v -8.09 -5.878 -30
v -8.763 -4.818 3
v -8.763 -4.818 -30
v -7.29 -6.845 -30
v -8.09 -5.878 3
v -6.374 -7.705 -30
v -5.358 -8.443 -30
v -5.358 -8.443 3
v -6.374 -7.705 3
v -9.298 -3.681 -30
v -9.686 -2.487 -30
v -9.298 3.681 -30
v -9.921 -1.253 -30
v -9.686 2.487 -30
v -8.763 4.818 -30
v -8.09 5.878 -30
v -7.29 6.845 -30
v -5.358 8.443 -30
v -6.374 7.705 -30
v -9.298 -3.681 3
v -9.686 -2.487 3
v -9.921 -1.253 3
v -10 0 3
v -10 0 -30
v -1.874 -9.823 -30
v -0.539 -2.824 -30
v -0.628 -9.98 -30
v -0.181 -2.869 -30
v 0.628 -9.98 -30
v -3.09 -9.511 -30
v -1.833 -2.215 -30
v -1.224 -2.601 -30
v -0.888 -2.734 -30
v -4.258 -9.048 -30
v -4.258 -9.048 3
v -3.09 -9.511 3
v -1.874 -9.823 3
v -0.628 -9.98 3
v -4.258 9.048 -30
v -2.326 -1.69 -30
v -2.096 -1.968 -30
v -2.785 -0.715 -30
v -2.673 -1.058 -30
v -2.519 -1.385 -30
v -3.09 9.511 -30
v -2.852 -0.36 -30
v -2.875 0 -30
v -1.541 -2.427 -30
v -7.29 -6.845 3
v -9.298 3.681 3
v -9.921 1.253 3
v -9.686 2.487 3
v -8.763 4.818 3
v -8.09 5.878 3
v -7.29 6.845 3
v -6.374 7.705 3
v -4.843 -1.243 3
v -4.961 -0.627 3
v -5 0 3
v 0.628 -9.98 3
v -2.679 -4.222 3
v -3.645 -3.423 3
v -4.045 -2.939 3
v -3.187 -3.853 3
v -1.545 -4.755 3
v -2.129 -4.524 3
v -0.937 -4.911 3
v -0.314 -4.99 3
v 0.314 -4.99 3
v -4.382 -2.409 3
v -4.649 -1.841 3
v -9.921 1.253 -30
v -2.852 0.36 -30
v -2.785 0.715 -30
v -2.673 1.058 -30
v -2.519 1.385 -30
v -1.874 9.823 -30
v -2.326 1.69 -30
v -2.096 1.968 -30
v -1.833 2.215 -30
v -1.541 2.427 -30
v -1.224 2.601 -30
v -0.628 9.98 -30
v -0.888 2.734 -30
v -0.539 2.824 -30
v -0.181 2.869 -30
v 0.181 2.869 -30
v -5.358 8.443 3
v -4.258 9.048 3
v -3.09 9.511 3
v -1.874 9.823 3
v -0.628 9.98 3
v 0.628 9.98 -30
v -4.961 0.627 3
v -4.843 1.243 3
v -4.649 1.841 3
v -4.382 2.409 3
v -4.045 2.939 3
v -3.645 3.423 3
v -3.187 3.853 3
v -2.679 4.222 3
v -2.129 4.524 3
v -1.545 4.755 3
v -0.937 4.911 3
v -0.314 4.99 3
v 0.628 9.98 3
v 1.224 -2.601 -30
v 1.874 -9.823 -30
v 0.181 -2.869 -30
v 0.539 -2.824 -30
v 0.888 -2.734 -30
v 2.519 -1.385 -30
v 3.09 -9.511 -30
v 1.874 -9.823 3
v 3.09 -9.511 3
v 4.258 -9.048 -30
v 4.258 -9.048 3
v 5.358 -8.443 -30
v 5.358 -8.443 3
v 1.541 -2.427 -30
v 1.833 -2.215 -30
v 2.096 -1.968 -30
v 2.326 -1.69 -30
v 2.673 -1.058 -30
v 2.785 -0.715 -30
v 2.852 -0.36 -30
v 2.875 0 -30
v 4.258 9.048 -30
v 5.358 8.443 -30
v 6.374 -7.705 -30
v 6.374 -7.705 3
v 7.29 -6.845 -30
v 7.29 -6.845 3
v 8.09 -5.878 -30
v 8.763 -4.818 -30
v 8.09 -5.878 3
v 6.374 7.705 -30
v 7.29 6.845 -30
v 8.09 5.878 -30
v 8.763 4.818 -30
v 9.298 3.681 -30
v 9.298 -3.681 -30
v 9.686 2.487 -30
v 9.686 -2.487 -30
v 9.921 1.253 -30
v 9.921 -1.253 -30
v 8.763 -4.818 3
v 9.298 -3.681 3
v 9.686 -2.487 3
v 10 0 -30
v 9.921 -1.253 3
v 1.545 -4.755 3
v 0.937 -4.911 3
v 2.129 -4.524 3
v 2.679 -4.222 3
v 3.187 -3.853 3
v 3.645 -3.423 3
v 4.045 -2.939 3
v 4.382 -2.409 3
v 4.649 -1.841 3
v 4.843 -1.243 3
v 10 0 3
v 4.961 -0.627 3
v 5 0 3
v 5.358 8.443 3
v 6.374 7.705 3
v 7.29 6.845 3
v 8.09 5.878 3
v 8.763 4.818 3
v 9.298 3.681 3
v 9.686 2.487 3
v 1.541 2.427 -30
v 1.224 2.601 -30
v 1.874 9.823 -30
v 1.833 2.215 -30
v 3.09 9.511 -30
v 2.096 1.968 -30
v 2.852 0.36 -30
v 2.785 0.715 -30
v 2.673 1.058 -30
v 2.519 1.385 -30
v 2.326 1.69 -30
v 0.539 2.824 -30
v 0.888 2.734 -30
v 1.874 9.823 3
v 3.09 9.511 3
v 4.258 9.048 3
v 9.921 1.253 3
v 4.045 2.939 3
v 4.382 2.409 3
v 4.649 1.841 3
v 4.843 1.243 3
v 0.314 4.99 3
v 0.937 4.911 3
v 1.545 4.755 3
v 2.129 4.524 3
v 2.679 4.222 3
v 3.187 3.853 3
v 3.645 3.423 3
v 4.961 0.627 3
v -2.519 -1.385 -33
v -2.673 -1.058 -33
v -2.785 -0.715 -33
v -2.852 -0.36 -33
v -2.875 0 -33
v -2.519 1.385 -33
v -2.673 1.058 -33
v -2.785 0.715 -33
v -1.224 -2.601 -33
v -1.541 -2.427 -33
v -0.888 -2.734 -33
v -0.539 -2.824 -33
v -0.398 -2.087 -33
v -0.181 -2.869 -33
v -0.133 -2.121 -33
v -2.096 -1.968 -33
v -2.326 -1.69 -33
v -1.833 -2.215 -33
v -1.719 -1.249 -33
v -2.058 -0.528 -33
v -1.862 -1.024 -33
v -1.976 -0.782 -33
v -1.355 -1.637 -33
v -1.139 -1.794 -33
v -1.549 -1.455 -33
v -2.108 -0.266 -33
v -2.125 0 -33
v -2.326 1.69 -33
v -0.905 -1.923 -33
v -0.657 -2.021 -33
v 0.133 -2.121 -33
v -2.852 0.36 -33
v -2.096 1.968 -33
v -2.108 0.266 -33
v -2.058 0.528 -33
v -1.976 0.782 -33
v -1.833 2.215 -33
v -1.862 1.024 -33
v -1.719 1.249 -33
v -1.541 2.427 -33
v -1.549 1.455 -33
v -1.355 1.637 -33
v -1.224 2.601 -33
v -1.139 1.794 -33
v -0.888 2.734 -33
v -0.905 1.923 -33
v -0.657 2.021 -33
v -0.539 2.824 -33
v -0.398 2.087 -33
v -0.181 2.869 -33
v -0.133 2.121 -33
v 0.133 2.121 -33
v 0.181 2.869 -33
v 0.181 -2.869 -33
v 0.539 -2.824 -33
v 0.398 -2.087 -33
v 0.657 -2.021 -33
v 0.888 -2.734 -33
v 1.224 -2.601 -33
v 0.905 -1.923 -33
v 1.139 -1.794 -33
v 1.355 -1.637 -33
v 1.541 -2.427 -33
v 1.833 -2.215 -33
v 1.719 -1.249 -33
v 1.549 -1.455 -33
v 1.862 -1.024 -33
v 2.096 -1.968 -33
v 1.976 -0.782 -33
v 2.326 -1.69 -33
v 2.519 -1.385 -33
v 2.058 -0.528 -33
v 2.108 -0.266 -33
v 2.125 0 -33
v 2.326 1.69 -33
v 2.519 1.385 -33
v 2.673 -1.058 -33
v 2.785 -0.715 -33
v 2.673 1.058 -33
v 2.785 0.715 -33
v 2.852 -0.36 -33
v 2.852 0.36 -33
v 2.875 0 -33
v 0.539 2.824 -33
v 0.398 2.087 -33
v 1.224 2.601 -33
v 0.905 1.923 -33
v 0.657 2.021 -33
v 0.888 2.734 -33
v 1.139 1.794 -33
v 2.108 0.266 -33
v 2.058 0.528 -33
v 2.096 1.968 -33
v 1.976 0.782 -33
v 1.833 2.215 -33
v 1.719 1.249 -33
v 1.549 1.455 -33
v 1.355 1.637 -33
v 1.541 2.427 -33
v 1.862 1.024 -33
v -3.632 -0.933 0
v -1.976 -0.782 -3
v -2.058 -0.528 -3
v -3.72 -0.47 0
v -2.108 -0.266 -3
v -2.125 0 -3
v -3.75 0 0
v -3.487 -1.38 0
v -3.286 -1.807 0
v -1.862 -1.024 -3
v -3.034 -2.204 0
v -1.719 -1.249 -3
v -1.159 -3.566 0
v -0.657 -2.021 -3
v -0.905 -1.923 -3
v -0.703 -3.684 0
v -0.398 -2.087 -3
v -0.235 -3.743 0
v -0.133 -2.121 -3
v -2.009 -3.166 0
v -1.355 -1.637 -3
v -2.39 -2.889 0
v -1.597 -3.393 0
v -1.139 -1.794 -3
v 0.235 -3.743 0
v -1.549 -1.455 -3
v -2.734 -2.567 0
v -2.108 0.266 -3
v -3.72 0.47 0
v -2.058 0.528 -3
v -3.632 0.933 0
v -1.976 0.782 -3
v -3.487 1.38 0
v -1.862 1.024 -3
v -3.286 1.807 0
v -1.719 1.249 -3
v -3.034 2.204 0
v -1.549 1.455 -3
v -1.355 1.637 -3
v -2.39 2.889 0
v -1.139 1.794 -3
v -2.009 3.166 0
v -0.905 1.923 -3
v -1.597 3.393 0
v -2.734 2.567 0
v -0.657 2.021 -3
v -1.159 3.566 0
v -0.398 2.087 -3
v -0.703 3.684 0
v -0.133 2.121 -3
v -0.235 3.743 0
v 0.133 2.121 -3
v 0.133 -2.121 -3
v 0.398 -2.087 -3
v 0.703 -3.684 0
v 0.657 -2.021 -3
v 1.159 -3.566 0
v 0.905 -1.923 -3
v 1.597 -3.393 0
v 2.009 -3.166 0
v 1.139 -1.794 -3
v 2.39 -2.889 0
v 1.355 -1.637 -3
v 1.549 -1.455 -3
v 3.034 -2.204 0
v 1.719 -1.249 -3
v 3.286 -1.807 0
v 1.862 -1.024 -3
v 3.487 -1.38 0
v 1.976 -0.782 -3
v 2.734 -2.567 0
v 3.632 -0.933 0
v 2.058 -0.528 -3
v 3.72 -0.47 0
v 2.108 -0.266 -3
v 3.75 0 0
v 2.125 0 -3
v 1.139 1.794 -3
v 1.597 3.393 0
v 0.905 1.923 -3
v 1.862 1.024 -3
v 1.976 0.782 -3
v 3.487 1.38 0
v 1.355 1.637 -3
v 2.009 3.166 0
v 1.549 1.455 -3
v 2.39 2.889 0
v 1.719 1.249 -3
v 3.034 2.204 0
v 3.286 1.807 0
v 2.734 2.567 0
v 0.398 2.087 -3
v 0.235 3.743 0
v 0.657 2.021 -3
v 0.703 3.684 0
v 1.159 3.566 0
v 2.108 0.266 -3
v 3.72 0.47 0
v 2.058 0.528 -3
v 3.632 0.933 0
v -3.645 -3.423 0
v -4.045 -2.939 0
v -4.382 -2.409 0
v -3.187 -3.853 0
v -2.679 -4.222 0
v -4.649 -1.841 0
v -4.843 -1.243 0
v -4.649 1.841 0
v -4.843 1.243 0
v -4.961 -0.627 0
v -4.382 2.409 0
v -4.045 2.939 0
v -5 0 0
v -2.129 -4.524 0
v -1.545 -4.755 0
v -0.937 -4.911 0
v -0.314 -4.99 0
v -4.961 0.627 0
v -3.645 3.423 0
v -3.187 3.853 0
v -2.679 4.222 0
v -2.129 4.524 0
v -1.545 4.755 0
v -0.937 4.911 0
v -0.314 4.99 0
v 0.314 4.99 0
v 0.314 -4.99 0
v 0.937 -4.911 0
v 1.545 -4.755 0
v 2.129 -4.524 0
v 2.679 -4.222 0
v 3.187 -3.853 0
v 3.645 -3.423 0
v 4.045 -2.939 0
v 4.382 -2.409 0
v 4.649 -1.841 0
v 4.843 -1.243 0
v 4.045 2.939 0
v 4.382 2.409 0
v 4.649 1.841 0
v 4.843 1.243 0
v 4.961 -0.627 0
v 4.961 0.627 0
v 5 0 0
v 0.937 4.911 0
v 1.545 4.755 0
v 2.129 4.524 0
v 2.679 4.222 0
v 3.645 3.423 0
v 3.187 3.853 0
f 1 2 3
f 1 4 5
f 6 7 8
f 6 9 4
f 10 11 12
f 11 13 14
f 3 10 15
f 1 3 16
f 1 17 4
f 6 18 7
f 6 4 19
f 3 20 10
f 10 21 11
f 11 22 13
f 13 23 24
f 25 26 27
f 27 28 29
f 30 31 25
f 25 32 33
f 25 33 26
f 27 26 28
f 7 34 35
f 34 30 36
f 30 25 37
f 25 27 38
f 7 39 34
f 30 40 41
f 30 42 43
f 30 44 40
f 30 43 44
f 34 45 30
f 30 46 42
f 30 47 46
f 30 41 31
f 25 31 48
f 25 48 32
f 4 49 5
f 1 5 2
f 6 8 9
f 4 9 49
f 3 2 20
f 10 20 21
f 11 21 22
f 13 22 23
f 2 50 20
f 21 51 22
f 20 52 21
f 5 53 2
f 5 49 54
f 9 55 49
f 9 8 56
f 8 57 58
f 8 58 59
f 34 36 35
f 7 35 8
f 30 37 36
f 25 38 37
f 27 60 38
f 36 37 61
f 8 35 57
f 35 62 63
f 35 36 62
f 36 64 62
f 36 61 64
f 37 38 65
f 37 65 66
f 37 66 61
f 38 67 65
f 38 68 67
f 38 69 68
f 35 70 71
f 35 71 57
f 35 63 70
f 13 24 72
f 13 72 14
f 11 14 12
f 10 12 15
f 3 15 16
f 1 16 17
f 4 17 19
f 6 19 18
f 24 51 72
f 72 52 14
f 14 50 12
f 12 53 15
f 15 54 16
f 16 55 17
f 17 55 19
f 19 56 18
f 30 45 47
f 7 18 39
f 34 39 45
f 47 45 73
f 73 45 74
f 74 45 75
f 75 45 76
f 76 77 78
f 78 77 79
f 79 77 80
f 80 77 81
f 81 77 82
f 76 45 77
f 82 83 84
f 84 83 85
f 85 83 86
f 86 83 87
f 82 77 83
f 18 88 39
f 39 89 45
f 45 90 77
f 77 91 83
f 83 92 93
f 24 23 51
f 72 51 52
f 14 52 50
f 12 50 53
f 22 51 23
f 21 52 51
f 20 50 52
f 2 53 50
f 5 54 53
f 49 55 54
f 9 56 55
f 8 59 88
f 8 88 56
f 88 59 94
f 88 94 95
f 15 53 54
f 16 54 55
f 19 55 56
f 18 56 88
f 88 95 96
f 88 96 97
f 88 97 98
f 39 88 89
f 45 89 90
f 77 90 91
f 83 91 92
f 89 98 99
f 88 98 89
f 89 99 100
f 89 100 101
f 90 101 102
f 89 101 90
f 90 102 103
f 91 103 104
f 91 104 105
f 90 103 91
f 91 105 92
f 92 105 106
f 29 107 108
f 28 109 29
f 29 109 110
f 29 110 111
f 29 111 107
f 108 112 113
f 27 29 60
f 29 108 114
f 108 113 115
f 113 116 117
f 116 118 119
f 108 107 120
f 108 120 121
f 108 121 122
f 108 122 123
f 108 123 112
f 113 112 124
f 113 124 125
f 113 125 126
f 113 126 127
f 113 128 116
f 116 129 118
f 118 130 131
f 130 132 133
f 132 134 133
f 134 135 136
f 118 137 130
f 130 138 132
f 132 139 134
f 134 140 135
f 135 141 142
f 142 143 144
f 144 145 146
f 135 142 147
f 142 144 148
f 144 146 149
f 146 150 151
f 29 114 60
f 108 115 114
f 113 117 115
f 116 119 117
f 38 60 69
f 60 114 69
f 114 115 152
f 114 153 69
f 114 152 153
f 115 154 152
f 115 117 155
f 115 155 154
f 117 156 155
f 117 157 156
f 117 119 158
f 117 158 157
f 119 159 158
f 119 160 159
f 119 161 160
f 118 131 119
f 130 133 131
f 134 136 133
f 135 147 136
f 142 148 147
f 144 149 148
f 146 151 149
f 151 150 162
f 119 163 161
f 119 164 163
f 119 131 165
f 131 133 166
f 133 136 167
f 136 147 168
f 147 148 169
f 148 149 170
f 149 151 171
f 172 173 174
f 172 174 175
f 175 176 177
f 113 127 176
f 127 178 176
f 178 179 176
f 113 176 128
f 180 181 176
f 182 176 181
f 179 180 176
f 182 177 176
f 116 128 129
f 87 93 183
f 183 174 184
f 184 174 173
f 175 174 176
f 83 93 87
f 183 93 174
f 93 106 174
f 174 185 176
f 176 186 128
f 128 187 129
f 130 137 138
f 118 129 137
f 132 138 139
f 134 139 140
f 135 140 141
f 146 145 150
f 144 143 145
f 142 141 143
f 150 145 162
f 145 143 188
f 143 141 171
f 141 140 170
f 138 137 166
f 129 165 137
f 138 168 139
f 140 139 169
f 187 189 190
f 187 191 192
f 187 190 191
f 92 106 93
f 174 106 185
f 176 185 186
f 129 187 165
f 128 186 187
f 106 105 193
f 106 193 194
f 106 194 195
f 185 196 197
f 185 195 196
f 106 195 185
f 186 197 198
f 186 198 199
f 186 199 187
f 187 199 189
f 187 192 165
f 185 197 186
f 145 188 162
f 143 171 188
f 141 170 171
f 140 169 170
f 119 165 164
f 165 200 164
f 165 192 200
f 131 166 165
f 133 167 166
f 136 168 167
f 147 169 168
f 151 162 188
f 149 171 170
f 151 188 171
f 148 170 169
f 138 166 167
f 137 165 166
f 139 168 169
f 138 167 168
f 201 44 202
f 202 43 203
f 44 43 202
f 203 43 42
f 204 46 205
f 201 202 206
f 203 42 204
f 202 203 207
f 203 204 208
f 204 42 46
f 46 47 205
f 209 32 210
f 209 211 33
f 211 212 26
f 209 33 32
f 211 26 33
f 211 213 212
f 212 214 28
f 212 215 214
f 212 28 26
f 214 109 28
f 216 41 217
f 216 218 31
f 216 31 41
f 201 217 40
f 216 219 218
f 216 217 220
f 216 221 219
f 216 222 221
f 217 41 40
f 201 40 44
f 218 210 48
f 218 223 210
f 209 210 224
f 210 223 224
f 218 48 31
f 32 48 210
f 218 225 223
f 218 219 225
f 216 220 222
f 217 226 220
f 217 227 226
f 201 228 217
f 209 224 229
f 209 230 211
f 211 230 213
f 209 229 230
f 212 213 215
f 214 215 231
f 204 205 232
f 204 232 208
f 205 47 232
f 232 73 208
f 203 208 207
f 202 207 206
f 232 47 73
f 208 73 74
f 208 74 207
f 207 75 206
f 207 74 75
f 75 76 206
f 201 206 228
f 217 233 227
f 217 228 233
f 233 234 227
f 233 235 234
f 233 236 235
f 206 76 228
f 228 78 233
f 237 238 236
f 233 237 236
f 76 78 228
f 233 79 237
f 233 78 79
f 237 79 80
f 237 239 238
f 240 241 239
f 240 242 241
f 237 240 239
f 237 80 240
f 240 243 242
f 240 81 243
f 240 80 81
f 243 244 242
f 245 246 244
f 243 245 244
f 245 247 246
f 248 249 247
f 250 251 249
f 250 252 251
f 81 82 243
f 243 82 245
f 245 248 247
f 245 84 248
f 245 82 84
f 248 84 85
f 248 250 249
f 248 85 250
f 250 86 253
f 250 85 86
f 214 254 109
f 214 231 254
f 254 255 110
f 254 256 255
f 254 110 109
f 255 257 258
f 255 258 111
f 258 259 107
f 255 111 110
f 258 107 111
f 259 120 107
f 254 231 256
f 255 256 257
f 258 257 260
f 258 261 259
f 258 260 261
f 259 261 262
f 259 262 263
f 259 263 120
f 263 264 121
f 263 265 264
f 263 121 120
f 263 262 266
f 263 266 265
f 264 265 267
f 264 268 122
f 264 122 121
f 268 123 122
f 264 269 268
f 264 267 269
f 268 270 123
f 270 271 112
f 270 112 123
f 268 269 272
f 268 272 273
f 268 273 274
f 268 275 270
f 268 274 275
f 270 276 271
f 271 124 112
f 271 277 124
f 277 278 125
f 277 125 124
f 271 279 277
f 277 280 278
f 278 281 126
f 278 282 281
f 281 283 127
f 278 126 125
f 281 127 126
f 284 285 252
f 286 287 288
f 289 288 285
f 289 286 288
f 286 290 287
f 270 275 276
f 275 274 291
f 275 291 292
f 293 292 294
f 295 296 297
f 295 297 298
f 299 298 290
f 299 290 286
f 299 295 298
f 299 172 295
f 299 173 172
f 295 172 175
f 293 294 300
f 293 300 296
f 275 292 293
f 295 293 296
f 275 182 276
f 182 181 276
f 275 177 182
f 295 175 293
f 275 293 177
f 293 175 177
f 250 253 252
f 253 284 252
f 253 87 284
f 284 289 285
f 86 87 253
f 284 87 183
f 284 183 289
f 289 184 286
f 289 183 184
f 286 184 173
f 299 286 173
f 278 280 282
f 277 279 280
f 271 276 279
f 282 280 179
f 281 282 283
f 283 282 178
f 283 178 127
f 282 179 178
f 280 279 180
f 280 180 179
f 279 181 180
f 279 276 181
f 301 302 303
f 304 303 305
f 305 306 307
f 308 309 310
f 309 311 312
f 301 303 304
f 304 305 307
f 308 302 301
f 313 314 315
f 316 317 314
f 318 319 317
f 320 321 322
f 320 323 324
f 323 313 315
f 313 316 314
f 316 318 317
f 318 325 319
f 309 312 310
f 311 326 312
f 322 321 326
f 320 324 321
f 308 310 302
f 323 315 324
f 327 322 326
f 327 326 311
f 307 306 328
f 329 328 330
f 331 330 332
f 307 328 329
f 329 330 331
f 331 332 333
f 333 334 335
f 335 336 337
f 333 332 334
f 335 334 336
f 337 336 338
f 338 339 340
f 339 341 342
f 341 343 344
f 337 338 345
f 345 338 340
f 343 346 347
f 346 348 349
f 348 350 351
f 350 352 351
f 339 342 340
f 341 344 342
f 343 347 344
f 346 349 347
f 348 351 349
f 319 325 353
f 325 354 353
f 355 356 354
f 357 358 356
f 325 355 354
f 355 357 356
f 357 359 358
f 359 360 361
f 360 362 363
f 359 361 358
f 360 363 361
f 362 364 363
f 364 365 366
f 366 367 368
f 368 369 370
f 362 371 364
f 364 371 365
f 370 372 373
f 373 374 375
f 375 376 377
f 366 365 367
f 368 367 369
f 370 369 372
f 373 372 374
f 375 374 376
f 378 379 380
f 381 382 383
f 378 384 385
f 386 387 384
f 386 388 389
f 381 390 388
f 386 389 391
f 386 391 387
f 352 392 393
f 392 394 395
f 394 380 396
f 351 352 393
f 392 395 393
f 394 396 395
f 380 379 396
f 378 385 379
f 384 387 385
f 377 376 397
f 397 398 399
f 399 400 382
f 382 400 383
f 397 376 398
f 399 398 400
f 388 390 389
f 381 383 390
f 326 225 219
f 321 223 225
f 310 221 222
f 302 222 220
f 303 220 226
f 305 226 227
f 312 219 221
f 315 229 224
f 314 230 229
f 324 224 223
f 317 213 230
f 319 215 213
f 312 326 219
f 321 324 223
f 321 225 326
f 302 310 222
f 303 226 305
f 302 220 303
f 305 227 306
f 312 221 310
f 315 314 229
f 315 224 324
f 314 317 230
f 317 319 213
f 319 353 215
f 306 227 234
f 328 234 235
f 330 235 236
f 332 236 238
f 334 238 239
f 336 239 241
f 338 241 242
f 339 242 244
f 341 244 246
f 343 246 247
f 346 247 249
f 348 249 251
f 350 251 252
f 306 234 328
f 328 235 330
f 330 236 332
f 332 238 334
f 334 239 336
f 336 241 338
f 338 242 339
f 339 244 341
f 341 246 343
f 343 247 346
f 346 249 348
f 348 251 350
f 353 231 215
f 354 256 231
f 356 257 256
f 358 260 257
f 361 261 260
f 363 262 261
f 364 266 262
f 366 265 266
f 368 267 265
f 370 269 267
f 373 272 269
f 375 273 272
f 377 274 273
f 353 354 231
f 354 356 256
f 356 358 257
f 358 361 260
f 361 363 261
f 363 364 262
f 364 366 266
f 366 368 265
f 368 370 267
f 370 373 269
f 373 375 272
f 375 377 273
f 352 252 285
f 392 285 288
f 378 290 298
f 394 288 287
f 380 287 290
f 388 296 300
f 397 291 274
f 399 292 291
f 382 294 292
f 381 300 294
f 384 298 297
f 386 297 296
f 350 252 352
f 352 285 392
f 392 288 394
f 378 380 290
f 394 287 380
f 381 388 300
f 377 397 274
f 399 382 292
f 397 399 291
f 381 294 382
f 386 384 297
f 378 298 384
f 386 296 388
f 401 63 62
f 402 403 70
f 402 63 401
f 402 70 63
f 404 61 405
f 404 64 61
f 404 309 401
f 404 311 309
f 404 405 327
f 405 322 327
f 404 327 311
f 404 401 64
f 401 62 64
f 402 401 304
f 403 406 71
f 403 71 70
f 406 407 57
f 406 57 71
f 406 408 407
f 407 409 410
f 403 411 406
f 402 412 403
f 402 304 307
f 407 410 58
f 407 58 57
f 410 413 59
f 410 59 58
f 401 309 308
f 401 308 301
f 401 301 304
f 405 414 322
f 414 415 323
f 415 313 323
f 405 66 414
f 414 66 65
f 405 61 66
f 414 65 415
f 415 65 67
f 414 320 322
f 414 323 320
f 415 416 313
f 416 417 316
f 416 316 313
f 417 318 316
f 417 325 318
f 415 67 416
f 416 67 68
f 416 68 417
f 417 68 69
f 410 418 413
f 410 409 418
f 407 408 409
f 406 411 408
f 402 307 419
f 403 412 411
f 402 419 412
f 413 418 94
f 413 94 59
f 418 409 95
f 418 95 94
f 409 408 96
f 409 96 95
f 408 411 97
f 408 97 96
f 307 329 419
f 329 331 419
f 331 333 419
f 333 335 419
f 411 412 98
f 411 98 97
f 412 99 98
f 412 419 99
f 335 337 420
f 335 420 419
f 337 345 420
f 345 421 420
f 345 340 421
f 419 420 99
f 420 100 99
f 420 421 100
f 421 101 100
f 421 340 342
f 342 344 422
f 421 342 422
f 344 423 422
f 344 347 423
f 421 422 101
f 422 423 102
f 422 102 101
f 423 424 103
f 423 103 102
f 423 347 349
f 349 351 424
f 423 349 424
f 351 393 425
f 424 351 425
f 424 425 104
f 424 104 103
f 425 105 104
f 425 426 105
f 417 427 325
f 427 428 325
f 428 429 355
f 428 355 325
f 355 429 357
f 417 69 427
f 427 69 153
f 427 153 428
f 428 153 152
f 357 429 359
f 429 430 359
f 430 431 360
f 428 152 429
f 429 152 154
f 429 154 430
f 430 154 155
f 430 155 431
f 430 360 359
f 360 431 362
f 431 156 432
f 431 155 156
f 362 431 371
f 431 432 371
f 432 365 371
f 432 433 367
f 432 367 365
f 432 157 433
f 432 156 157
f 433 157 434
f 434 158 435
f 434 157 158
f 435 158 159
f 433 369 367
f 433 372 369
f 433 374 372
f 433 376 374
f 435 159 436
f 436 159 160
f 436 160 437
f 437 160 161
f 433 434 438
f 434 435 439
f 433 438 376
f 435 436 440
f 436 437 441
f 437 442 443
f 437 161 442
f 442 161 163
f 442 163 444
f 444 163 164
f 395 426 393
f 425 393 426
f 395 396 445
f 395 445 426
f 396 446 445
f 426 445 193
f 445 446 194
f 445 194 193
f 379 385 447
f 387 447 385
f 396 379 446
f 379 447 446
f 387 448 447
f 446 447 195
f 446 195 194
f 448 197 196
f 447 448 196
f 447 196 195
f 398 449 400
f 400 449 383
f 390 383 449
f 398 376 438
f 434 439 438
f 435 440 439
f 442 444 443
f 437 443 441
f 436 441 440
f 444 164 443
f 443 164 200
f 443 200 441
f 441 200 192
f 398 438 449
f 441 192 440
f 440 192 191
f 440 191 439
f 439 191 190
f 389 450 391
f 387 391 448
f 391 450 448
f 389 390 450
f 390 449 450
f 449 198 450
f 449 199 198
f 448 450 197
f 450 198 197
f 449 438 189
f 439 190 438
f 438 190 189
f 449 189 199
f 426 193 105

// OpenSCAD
$fn = 50;

difference() {
	union() {
		translate(v = [0, 0, -30.0]) {
			cylinder(h = 33, r = 10.0);
		}
		#translate(v = [0, 0, -33.0]) {
			cylinder(h = 33, r = 2.875);
		}
	}
	union() {
		translate(v = [0, 0, 0]) {
			rotate(a = [0, 0, 0]) {
				difference() {
					union() {
						translate(v = [0, 0, -33.0]) {
							cylinder(h = 33, r = 2.0);
						}
						translate(v = [0, 0, -3]) {
							cylinder(h = 3, r1 = 2.125, r2 = 3.75);
						}
						translate(v = [0, 0, -33.0]) {
							cylinder(h = 33, r = 2.125);
						}
						translate(v = [0, 0, -33.0]) {
							cylinder(h = 33, r = 2.0);
						}
					}
					union();
				}
			}
		}
		#cylinder(h = 3, r = 5.0);
	}
}
